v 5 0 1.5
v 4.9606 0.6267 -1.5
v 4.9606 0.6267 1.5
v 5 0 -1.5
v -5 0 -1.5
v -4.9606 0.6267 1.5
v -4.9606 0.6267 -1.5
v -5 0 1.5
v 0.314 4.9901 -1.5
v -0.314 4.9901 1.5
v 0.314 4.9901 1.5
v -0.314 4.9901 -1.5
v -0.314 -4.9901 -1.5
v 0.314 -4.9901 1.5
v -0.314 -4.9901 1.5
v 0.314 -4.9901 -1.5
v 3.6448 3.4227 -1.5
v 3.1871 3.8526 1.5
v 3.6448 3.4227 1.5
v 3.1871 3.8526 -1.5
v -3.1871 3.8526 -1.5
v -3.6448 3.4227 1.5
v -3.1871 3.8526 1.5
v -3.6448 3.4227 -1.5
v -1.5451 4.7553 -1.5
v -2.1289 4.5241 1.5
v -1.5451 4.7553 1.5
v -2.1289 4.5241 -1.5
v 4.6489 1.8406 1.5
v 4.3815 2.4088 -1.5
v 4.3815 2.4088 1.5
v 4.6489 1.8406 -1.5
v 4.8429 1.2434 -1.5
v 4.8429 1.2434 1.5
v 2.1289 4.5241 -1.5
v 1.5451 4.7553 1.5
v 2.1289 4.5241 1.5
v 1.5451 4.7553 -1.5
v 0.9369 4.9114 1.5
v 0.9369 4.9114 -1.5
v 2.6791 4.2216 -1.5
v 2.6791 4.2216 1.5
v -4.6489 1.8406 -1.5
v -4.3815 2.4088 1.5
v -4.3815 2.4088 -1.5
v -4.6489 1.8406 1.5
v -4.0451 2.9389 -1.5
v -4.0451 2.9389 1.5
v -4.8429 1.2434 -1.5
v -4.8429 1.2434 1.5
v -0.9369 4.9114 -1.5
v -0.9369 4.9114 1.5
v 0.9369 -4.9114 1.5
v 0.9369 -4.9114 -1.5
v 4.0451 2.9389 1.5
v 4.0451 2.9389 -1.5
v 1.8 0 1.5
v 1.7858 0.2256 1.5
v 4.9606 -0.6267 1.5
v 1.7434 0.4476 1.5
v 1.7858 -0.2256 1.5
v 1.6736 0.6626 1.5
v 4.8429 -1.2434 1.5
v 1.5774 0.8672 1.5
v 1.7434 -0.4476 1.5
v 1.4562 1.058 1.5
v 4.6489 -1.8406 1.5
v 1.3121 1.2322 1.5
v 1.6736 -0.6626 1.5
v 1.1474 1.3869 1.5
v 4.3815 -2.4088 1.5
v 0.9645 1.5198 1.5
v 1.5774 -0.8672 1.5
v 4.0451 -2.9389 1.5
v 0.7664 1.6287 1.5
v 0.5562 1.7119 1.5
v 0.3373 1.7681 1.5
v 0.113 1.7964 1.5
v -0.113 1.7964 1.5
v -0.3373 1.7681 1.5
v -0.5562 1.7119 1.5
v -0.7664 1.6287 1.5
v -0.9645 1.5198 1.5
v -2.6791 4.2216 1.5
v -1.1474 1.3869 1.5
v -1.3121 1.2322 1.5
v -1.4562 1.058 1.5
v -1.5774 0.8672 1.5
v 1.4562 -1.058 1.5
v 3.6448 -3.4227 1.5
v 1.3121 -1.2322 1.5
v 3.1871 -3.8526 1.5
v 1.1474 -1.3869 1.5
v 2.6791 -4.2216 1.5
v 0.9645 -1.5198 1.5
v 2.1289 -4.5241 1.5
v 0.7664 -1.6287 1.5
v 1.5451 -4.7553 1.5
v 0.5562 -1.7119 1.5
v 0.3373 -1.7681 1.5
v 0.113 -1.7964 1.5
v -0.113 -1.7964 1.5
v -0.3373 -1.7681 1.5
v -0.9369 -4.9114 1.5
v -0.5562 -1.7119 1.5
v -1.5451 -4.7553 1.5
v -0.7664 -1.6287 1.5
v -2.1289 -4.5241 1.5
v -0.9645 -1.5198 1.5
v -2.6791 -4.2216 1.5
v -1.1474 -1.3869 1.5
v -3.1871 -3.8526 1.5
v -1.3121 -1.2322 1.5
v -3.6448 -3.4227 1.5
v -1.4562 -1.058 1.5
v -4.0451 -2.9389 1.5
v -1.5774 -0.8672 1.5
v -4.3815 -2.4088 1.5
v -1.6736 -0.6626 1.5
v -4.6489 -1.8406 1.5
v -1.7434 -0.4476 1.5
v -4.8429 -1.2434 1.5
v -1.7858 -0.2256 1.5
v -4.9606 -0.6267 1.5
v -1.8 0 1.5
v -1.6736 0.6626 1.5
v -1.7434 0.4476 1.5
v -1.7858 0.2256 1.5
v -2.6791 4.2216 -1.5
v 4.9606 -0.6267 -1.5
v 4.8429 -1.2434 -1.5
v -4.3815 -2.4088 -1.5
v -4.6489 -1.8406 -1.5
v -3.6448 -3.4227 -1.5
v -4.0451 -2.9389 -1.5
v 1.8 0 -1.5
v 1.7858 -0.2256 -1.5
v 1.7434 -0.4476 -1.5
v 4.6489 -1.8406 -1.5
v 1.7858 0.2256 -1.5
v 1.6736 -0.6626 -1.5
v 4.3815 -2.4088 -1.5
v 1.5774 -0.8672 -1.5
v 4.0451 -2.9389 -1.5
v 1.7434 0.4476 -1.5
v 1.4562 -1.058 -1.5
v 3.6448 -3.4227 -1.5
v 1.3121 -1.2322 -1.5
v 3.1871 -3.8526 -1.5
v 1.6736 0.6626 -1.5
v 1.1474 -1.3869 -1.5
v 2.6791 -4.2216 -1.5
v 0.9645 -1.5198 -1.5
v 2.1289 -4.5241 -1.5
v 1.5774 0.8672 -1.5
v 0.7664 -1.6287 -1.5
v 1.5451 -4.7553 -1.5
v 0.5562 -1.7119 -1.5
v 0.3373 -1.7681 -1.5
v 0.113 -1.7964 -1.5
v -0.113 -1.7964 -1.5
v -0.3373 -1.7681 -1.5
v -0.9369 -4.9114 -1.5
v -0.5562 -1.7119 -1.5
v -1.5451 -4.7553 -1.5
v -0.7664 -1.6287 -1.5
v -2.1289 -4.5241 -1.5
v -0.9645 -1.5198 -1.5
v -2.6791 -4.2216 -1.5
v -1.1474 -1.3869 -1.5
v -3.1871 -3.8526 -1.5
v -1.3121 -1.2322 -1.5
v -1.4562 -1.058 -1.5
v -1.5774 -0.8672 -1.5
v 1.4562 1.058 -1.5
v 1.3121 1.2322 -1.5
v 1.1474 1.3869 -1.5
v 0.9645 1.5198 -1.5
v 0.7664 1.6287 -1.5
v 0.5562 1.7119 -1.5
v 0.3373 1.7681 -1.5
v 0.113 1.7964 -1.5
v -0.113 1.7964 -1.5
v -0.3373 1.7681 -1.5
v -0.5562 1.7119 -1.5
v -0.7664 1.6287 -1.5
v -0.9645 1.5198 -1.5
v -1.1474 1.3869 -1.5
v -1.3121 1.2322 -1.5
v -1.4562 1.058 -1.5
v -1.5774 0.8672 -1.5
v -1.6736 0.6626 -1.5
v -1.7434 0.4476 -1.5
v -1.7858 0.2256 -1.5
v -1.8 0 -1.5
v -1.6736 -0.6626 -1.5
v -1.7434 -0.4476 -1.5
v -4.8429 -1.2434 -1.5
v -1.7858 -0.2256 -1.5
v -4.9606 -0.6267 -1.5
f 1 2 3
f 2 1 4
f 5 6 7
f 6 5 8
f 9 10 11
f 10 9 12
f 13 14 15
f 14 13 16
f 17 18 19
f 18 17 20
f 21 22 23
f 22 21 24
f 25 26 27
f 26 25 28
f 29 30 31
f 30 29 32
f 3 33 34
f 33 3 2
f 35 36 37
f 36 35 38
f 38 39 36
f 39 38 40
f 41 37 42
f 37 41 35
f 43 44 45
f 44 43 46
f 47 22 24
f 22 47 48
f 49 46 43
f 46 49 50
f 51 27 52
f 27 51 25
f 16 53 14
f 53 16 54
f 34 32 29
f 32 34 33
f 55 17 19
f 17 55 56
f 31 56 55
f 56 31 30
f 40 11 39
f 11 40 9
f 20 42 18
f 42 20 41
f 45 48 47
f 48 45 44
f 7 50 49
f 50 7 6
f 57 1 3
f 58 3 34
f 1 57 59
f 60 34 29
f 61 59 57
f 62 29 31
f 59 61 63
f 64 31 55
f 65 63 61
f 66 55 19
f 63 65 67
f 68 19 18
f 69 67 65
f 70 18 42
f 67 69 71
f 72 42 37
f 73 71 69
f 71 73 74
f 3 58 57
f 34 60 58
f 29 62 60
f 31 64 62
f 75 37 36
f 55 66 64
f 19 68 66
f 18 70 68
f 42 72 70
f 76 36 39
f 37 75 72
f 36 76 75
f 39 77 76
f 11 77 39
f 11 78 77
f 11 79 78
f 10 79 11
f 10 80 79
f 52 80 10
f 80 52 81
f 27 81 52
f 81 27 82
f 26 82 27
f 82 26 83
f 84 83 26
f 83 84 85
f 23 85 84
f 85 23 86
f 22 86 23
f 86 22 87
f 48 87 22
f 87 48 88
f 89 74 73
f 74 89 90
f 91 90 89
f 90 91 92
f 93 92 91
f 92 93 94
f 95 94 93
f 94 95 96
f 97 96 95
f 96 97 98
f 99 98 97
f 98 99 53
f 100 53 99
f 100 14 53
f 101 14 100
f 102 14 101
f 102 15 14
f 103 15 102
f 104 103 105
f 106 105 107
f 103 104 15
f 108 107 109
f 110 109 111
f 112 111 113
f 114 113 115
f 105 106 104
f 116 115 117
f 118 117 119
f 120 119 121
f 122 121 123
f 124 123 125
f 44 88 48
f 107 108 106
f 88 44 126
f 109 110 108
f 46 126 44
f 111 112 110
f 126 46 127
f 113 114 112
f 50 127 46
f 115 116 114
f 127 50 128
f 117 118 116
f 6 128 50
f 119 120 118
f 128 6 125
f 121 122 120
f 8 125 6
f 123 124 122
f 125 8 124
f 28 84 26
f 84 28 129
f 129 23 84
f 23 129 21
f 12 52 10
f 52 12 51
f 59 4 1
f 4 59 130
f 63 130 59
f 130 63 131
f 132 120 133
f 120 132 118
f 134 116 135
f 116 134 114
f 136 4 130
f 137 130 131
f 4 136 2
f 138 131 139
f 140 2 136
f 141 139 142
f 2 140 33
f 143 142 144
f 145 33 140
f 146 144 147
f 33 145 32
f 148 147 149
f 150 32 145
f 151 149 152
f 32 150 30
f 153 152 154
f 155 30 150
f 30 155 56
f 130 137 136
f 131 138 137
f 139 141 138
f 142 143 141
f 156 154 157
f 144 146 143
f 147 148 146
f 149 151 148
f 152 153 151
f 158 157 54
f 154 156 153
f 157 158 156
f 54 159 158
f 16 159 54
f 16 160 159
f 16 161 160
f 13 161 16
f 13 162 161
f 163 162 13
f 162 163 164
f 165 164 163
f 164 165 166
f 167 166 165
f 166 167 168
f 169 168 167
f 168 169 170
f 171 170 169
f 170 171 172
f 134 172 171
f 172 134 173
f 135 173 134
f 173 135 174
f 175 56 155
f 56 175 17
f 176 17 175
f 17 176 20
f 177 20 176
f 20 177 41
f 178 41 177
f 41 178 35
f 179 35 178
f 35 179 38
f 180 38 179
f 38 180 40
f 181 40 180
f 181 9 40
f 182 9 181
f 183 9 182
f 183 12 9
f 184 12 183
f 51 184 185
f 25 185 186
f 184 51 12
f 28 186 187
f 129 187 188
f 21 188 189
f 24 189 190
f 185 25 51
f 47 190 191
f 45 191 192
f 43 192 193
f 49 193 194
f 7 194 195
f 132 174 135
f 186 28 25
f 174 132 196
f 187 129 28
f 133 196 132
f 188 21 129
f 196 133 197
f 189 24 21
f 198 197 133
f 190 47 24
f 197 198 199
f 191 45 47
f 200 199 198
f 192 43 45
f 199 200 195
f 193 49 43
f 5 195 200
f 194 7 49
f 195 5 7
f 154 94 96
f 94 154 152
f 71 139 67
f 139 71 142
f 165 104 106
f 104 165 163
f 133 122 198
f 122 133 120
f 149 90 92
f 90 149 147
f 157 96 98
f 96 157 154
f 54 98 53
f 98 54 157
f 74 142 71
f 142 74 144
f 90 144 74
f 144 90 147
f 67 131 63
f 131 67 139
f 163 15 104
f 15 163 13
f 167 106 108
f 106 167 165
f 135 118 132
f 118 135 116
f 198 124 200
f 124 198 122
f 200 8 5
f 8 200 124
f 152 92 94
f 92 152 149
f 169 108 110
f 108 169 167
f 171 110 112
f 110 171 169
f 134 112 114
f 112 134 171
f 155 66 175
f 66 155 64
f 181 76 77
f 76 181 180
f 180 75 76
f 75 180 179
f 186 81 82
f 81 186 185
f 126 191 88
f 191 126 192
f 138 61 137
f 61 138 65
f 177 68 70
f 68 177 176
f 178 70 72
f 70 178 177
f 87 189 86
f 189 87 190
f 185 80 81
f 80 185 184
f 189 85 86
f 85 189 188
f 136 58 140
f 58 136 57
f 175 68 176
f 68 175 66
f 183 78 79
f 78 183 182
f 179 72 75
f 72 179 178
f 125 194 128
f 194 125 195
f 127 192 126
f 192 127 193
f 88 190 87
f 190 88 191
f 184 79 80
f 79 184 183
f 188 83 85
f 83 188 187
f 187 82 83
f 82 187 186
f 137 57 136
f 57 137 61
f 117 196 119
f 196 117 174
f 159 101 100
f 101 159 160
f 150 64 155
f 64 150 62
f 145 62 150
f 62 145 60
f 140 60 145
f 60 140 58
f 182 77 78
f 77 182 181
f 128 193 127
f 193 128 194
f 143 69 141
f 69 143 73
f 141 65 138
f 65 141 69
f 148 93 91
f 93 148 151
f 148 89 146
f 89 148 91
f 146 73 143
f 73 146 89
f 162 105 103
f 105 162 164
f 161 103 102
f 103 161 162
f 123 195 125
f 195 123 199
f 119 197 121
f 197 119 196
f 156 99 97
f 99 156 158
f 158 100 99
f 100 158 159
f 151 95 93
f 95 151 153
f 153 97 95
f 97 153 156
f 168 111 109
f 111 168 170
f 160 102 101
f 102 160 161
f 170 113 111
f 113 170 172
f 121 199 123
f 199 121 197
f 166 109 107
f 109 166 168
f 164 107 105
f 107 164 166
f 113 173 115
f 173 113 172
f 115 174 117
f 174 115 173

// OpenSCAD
$fn = 50;


difference() {
	union() {
		translate(v = [0, 0, -1.5000000000]) {
			cylinder(h = 3, r = 5.0000000000);
		}
	}
	union() {
		translate(v = [0, 0, -100.0000000000]) {
			cylinder(h = 200, r = 1.8000000000);
		}
	}
}
